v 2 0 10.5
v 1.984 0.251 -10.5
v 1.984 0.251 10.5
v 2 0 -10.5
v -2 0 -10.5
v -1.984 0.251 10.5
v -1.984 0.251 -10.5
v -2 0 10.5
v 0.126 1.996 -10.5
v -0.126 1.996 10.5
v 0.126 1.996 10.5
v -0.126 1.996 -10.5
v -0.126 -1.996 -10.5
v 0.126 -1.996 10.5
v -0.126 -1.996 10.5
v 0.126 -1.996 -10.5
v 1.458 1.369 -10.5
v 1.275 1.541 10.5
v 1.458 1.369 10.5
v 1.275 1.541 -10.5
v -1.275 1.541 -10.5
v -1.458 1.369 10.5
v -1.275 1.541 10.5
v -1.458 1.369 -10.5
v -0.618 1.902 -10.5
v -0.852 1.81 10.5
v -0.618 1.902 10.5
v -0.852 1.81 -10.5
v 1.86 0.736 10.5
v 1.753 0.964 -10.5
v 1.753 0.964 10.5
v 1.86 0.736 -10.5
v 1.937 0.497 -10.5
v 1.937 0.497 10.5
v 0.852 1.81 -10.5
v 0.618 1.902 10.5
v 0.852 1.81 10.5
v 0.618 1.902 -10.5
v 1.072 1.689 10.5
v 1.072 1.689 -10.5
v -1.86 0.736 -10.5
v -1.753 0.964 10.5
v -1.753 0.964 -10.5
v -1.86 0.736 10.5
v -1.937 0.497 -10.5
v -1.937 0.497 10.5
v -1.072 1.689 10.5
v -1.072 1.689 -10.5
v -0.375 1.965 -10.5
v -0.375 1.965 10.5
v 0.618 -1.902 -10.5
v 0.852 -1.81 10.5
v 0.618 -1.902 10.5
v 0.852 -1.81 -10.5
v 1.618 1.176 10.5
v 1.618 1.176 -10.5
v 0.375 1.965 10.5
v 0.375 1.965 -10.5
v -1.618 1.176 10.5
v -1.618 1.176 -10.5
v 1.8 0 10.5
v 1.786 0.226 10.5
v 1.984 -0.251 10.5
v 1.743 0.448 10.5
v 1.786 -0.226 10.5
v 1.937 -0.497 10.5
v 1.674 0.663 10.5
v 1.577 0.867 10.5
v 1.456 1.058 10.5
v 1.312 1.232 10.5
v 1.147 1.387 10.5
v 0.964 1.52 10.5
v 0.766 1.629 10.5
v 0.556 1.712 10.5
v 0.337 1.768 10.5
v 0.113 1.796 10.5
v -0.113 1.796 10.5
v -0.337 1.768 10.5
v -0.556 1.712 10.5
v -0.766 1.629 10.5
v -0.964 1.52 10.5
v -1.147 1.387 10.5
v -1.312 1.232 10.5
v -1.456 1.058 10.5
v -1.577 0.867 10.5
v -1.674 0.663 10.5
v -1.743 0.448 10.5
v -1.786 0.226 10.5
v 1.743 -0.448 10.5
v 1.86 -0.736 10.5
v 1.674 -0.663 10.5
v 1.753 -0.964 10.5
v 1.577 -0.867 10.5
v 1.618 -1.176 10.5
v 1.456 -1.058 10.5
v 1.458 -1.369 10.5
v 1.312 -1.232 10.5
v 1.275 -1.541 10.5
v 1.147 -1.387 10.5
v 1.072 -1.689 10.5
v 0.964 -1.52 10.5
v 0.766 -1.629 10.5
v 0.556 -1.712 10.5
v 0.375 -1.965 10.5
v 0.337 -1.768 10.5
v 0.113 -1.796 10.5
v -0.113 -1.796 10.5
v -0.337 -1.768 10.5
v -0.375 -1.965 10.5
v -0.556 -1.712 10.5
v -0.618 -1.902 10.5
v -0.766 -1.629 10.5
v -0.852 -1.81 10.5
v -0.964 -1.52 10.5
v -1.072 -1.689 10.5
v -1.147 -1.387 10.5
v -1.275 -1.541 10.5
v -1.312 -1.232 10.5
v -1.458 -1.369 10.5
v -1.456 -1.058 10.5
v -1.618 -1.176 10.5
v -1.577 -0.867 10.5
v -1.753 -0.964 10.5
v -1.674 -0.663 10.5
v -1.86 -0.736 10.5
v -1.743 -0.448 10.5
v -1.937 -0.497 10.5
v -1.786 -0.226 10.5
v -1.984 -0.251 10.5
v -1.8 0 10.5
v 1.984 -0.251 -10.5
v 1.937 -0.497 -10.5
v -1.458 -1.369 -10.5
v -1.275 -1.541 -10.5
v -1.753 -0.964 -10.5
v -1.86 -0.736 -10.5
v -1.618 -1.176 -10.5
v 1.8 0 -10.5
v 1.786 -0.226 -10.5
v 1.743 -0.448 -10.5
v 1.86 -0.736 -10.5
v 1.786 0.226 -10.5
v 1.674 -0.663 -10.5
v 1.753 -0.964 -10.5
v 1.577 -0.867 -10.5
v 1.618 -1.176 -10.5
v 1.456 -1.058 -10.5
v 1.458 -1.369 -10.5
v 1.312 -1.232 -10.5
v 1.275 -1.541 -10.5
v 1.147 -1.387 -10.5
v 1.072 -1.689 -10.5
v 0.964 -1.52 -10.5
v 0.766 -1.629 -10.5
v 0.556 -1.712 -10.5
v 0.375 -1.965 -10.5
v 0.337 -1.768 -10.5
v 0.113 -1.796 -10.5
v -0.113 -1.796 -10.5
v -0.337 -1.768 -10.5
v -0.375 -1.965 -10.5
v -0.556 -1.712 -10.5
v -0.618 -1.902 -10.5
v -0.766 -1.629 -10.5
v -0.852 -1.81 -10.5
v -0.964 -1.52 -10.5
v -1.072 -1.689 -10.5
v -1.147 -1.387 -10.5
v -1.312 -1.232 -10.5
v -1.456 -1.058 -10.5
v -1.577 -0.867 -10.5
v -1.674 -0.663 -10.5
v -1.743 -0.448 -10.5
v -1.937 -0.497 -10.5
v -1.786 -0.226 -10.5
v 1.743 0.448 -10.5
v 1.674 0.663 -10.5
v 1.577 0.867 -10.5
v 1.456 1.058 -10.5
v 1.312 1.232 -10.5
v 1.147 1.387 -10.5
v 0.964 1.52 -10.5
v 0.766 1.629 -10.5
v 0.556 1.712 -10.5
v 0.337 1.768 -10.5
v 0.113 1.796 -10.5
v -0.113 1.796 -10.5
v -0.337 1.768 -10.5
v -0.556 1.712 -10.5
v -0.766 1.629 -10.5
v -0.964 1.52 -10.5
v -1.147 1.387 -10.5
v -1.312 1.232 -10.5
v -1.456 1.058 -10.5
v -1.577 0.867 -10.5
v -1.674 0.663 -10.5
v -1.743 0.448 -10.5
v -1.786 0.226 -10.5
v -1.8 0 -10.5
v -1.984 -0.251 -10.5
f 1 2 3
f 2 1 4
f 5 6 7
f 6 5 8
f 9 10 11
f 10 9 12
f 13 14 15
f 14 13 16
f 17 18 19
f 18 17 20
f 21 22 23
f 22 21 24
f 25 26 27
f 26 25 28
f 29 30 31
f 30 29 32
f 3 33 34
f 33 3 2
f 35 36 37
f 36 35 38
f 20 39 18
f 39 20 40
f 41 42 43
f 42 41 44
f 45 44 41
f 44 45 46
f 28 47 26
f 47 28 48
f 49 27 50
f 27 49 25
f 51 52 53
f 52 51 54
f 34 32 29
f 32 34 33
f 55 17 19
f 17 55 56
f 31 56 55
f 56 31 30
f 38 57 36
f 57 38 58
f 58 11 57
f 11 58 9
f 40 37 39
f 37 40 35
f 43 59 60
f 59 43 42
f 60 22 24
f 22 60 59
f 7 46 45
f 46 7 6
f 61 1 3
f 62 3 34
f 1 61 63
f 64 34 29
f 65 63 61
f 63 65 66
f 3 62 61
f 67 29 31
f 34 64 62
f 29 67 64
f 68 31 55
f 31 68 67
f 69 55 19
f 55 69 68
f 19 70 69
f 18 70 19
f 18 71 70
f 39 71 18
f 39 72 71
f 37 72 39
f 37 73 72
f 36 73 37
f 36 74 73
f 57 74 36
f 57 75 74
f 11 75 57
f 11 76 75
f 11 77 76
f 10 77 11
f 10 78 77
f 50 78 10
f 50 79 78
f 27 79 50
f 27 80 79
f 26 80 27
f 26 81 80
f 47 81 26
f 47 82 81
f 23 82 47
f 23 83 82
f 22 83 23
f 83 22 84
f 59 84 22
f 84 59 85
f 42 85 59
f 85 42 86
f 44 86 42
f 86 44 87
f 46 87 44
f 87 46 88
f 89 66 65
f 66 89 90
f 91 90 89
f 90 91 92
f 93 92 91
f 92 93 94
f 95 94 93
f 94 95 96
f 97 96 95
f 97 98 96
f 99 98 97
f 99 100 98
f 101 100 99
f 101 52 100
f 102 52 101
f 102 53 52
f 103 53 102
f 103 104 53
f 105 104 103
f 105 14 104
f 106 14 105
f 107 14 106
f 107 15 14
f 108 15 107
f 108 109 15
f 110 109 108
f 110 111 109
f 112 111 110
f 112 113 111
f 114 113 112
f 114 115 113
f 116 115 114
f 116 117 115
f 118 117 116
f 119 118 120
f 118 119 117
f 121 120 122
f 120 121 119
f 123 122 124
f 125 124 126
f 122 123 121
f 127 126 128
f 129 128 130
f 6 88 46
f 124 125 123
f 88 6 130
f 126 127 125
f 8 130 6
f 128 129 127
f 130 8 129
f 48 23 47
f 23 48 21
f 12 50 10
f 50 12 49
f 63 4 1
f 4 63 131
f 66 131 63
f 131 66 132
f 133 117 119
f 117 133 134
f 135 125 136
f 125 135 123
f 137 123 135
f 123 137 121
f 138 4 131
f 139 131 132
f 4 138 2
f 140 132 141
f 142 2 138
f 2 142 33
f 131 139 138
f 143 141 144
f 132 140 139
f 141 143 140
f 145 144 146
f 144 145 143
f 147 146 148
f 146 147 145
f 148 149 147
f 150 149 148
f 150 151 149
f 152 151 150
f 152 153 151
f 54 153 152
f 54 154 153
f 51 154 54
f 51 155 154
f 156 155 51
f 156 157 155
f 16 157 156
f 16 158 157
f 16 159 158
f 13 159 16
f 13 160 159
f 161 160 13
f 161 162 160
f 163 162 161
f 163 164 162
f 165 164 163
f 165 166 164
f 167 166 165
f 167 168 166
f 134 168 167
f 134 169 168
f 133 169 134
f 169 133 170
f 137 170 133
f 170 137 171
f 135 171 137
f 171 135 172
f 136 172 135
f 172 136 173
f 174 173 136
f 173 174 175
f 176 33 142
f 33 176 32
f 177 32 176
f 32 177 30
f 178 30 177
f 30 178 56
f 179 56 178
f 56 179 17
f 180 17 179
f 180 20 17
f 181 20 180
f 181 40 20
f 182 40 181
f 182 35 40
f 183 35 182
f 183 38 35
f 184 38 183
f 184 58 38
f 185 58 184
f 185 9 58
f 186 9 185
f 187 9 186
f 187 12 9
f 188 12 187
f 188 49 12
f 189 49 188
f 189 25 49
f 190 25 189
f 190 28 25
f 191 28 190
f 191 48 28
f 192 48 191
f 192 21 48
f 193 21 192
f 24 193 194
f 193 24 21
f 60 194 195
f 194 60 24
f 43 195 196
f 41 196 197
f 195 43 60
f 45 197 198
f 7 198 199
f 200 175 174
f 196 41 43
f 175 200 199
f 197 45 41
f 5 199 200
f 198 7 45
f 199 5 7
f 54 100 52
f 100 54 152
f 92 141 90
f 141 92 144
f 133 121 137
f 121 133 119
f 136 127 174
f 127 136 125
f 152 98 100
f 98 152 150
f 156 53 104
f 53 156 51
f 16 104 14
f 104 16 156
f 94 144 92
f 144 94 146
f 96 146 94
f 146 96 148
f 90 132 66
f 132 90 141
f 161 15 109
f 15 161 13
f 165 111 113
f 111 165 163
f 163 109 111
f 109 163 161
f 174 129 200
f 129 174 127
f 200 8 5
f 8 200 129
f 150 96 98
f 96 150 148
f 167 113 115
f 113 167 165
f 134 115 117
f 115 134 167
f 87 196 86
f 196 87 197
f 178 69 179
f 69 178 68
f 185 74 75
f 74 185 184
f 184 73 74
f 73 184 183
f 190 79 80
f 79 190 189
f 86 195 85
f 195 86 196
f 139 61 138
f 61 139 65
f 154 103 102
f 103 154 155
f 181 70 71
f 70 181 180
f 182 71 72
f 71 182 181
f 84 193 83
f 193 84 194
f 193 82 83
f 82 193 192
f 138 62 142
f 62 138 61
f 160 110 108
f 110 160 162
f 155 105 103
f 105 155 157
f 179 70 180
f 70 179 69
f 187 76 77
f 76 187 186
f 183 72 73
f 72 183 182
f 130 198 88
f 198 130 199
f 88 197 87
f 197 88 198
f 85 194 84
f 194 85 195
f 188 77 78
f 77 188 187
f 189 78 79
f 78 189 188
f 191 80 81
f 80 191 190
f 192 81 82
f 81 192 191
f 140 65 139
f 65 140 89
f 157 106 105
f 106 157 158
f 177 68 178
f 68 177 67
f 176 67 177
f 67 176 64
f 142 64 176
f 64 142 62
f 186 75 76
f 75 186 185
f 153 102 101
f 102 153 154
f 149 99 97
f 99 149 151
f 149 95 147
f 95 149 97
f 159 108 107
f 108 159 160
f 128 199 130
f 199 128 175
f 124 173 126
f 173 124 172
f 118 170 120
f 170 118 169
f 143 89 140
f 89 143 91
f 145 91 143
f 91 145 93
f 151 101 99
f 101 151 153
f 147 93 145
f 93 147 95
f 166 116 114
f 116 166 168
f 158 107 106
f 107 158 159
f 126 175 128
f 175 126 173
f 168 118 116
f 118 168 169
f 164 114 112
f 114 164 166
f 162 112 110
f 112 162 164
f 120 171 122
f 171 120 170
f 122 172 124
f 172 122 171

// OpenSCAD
$fn = 50;


difference() {
	union() {
		translate(v = [0, 0, -10.5000000000]) {
			cylinder(h = 21, r = 2.0000000000);
		}
	}
	union() {
		translate(v = [0, 0, -100.0000000000]) {
			cylinder(h = 200, r = 1.8000000000);
		}
	}
}
